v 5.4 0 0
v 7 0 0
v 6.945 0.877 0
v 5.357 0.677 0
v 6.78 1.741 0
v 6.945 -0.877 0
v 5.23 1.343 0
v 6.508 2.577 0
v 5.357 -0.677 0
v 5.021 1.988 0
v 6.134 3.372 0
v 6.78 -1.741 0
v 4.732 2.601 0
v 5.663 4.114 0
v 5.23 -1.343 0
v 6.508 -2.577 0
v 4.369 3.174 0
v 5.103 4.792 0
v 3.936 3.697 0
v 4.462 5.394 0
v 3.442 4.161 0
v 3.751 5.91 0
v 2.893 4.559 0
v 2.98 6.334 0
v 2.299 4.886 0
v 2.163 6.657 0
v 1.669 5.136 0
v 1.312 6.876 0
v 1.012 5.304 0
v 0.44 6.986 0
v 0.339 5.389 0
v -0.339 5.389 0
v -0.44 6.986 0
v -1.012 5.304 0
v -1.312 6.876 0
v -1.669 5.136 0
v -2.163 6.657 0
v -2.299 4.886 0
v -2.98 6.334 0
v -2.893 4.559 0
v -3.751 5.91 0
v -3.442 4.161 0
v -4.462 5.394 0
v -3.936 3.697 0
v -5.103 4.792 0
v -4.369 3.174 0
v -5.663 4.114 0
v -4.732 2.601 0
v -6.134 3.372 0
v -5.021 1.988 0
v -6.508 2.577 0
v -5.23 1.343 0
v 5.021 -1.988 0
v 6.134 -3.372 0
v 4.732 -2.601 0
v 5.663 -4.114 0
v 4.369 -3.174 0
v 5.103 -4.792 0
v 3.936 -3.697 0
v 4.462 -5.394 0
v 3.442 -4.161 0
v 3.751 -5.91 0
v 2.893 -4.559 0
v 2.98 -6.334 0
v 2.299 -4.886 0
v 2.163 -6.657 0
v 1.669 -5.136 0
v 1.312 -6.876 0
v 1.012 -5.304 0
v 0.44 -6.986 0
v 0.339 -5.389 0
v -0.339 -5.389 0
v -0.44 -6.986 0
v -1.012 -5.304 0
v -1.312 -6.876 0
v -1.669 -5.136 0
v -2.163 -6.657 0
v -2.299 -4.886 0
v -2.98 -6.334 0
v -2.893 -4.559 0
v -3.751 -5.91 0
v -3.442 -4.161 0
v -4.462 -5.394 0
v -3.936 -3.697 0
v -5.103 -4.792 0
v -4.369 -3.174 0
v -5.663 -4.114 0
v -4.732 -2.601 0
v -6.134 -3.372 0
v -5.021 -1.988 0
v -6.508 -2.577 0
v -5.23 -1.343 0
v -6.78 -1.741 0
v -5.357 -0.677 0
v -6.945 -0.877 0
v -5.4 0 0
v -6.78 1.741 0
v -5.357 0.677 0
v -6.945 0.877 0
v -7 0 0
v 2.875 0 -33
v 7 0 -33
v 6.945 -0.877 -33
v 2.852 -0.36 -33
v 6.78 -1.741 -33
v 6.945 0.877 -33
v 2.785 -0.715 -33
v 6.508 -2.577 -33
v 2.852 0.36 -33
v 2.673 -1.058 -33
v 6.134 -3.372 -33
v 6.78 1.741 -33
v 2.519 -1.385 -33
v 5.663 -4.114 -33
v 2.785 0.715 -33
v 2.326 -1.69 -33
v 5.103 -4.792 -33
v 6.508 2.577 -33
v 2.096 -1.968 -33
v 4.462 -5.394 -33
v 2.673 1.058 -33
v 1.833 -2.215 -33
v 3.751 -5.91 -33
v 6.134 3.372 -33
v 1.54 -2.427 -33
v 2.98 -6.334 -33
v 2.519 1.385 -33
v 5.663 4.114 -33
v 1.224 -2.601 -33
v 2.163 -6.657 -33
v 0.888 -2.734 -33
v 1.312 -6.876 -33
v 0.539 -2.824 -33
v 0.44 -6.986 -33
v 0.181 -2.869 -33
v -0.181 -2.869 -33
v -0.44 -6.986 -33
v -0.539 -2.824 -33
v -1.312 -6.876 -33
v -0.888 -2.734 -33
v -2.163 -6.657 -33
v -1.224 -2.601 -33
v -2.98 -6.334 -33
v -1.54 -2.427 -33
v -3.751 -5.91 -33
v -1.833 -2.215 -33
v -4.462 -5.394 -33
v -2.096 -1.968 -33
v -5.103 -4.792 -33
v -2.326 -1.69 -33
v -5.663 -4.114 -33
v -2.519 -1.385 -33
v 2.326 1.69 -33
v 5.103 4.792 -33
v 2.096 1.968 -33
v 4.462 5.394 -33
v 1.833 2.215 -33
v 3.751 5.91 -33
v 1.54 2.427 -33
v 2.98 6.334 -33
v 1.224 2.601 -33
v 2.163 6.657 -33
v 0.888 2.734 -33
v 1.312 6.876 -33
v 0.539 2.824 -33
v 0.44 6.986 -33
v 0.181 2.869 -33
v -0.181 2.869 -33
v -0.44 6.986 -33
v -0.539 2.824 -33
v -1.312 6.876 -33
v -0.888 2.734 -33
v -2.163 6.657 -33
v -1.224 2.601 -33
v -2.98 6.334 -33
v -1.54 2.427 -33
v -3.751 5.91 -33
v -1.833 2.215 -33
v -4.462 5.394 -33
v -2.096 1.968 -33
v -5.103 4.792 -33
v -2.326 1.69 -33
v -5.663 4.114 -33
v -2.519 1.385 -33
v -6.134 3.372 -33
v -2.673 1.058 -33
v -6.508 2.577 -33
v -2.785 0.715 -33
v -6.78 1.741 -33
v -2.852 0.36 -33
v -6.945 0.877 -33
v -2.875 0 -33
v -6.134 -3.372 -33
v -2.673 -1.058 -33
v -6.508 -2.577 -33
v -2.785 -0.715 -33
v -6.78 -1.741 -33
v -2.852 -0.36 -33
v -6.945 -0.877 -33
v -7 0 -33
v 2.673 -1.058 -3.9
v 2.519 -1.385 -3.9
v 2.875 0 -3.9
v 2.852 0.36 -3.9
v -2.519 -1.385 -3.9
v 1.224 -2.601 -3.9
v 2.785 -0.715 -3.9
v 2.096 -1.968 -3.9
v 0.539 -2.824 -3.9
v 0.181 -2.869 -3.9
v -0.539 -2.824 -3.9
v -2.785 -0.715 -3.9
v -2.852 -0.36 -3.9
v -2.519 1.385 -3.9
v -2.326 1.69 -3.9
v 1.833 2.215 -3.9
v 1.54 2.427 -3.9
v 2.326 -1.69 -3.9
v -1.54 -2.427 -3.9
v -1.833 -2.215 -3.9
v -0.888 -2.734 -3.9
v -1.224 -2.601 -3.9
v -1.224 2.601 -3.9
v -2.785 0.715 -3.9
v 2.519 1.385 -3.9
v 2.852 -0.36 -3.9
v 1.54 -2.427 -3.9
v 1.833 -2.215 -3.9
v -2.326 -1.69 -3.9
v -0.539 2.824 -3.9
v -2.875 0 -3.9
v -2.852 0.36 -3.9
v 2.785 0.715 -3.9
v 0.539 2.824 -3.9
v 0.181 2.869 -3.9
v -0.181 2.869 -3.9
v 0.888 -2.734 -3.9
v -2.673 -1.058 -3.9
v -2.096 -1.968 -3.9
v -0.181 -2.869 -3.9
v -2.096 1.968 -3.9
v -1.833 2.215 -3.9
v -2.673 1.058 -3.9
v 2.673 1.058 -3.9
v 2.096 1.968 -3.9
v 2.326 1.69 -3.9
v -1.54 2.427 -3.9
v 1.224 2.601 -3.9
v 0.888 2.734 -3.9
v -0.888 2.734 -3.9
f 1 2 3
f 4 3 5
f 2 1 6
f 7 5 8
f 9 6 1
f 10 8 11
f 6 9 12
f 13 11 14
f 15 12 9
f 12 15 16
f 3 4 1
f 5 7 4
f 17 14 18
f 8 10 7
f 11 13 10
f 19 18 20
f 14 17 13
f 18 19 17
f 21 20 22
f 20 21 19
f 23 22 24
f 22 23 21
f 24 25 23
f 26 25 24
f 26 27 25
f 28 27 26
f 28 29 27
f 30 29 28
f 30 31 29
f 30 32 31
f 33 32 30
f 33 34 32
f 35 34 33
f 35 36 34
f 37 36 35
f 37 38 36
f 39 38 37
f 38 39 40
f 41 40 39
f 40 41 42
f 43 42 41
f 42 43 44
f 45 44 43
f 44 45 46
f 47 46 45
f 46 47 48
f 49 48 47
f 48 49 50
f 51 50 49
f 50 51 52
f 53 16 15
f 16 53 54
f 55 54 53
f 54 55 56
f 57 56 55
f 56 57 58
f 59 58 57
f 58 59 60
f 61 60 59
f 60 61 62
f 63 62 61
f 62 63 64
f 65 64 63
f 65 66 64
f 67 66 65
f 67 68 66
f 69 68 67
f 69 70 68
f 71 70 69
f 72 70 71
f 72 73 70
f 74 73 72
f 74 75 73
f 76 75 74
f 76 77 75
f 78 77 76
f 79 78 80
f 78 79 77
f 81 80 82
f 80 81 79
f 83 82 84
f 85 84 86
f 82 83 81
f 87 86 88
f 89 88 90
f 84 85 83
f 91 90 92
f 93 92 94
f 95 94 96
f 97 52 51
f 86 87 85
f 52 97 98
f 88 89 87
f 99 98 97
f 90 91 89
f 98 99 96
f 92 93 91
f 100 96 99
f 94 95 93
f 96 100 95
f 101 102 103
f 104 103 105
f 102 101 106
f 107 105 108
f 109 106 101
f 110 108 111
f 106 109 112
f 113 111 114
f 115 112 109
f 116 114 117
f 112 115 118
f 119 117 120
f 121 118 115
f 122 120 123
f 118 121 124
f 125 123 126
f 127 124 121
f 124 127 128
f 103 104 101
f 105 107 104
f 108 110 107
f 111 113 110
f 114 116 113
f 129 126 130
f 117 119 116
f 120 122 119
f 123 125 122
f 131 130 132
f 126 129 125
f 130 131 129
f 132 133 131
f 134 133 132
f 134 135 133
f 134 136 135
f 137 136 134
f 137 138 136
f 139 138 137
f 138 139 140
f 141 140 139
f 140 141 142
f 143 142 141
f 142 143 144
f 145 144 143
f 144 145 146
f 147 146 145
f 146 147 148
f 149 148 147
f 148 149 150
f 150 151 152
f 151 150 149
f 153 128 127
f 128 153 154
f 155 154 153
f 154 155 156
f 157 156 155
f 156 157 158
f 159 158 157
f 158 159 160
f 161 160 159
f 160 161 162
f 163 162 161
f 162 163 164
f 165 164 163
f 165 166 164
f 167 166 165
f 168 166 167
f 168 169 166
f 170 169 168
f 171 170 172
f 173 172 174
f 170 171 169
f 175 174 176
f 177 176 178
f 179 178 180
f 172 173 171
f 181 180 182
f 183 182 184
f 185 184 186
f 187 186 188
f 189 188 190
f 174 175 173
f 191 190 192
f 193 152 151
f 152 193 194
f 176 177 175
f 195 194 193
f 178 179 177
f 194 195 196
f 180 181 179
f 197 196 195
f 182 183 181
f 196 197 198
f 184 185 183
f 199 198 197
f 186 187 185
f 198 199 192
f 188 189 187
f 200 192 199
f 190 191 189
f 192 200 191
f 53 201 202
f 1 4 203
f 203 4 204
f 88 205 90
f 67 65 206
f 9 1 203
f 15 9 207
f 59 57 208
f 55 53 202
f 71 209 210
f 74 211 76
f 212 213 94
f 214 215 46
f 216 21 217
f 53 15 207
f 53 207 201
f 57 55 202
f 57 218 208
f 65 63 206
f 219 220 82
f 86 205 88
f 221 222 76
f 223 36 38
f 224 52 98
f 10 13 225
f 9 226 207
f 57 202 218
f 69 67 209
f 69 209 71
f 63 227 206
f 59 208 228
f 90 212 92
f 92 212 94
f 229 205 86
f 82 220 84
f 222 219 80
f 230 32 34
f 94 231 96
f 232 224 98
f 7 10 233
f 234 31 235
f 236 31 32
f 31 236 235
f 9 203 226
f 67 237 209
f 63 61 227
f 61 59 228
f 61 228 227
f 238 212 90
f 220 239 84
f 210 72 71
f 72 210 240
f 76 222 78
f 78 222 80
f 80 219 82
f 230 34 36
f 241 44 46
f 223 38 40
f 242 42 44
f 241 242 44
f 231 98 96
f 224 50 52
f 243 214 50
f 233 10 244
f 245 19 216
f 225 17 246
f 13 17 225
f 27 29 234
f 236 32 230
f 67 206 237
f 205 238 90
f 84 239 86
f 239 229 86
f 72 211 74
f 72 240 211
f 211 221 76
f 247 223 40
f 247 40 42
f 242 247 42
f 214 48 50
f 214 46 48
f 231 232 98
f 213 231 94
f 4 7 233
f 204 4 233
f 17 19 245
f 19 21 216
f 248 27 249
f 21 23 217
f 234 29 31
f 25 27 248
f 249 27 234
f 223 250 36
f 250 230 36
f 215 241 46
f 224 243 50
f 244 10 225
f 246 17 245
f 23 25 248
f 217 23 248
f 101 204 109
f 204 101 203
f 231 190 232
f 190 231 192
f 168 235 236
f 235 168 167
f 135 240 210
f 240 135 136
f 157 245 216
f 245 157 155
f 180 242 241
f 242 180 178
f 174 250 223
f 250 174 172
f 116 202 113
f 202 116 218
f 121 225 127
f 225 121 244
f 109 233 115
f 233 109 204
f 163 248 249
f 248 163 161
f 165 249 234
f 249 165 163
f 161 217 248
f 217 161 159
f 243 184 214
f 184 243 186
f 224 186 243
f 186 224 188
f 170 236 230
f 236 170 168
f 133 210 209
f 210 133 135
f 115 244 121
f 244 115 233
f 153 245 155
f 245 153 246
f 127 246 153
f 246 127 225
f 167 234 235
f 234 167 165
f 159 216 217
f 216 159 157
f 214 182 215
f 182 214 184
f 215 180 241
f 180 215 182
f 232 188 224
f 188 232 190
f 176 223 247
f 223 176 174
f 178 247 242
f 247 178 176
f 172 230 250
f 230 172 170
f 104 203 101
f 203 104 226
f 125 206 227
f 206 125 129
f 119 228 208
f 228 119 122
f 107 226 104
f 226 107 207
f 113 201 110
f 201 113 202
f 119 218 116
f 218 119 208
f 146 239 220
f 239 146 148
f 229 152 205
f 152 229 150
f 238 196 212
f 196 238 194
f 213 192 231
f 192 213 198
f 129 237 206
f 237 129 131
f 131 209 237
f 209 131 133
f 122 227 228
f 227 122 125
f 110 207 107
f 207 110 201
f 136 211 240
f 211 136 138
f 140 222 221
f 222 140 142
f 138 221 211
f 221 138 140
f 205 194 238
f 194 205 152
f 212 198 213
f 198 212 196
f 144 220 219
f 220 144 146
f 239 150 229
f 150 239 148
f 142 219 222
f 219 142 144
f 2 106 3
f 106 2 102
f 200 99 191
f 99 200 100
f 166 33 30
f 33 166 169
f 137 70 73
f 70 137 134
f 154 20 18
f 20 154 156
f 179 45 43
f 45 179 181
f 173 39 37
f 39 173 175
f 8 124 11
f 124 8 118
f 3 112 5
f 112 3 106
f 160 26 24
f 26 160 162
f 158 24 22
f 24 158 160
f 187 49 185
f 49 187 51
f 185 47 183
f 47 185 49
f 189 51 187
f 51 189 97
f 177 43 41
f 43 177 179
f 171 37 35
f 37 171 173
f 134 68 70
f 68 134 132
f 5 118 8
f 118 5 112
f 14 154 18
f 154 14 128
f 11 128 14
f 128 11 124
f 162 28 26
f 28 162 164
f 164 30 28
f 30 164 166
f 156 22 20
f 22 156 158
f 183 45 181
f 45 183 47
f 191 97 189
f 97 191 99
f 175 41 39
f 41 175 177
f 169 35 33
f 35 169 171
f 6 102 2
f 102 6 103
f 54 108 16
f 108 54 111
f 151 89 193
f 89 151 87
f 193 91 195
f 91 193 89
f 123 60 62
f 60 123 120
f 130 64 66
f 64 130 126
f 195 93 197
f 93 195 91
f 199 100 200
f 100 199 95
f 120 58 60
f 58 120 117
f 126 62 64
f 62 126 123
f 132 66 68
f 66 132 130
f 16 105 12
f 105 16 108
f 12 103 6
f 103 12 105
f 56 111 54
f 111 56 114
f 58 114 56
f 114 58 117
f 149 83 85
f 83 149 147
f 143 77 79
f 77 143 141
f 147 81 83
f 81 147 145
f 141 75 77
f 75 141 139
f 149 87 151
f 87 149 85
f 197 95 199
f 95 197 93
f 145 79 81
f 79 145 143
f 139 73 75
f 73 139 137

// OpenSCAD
$fn = 50;


difference() {
	union() {
		translate(v = [0, 0, -33.0000000000]) {
			cylinder(h = 33, r = 7.0000000000);
		}
		cylinder(h = 0, r = 17.0000000000);
	}
	union() {
		translate(v = [0, 0, 0]) {
			rotate(a = [0, 0, 0]) {
				difference() {
					union() {
						#translate(v = [0, 0, -33.0000000000]) {
							cylinder(h = 33, r = 2.6000000000);
						}
						#translate(v = [0, 0, -3.9000000000]) {
							cylinder(h = 3.9000000000, r1 = 2.8750000000, r2 = 5.4000000000);
						}
						#translate(v = [0, 0, -33.0000000000]) {
							cylinder(h = 33, r = 2.8750000000);
						}
						#translate(v = [0, 0, -33.0000000000]) {
							cylinder(h = 33, r = 2.6000000000);
						}
					}
					union();
				}
			}
		}
	}
}
